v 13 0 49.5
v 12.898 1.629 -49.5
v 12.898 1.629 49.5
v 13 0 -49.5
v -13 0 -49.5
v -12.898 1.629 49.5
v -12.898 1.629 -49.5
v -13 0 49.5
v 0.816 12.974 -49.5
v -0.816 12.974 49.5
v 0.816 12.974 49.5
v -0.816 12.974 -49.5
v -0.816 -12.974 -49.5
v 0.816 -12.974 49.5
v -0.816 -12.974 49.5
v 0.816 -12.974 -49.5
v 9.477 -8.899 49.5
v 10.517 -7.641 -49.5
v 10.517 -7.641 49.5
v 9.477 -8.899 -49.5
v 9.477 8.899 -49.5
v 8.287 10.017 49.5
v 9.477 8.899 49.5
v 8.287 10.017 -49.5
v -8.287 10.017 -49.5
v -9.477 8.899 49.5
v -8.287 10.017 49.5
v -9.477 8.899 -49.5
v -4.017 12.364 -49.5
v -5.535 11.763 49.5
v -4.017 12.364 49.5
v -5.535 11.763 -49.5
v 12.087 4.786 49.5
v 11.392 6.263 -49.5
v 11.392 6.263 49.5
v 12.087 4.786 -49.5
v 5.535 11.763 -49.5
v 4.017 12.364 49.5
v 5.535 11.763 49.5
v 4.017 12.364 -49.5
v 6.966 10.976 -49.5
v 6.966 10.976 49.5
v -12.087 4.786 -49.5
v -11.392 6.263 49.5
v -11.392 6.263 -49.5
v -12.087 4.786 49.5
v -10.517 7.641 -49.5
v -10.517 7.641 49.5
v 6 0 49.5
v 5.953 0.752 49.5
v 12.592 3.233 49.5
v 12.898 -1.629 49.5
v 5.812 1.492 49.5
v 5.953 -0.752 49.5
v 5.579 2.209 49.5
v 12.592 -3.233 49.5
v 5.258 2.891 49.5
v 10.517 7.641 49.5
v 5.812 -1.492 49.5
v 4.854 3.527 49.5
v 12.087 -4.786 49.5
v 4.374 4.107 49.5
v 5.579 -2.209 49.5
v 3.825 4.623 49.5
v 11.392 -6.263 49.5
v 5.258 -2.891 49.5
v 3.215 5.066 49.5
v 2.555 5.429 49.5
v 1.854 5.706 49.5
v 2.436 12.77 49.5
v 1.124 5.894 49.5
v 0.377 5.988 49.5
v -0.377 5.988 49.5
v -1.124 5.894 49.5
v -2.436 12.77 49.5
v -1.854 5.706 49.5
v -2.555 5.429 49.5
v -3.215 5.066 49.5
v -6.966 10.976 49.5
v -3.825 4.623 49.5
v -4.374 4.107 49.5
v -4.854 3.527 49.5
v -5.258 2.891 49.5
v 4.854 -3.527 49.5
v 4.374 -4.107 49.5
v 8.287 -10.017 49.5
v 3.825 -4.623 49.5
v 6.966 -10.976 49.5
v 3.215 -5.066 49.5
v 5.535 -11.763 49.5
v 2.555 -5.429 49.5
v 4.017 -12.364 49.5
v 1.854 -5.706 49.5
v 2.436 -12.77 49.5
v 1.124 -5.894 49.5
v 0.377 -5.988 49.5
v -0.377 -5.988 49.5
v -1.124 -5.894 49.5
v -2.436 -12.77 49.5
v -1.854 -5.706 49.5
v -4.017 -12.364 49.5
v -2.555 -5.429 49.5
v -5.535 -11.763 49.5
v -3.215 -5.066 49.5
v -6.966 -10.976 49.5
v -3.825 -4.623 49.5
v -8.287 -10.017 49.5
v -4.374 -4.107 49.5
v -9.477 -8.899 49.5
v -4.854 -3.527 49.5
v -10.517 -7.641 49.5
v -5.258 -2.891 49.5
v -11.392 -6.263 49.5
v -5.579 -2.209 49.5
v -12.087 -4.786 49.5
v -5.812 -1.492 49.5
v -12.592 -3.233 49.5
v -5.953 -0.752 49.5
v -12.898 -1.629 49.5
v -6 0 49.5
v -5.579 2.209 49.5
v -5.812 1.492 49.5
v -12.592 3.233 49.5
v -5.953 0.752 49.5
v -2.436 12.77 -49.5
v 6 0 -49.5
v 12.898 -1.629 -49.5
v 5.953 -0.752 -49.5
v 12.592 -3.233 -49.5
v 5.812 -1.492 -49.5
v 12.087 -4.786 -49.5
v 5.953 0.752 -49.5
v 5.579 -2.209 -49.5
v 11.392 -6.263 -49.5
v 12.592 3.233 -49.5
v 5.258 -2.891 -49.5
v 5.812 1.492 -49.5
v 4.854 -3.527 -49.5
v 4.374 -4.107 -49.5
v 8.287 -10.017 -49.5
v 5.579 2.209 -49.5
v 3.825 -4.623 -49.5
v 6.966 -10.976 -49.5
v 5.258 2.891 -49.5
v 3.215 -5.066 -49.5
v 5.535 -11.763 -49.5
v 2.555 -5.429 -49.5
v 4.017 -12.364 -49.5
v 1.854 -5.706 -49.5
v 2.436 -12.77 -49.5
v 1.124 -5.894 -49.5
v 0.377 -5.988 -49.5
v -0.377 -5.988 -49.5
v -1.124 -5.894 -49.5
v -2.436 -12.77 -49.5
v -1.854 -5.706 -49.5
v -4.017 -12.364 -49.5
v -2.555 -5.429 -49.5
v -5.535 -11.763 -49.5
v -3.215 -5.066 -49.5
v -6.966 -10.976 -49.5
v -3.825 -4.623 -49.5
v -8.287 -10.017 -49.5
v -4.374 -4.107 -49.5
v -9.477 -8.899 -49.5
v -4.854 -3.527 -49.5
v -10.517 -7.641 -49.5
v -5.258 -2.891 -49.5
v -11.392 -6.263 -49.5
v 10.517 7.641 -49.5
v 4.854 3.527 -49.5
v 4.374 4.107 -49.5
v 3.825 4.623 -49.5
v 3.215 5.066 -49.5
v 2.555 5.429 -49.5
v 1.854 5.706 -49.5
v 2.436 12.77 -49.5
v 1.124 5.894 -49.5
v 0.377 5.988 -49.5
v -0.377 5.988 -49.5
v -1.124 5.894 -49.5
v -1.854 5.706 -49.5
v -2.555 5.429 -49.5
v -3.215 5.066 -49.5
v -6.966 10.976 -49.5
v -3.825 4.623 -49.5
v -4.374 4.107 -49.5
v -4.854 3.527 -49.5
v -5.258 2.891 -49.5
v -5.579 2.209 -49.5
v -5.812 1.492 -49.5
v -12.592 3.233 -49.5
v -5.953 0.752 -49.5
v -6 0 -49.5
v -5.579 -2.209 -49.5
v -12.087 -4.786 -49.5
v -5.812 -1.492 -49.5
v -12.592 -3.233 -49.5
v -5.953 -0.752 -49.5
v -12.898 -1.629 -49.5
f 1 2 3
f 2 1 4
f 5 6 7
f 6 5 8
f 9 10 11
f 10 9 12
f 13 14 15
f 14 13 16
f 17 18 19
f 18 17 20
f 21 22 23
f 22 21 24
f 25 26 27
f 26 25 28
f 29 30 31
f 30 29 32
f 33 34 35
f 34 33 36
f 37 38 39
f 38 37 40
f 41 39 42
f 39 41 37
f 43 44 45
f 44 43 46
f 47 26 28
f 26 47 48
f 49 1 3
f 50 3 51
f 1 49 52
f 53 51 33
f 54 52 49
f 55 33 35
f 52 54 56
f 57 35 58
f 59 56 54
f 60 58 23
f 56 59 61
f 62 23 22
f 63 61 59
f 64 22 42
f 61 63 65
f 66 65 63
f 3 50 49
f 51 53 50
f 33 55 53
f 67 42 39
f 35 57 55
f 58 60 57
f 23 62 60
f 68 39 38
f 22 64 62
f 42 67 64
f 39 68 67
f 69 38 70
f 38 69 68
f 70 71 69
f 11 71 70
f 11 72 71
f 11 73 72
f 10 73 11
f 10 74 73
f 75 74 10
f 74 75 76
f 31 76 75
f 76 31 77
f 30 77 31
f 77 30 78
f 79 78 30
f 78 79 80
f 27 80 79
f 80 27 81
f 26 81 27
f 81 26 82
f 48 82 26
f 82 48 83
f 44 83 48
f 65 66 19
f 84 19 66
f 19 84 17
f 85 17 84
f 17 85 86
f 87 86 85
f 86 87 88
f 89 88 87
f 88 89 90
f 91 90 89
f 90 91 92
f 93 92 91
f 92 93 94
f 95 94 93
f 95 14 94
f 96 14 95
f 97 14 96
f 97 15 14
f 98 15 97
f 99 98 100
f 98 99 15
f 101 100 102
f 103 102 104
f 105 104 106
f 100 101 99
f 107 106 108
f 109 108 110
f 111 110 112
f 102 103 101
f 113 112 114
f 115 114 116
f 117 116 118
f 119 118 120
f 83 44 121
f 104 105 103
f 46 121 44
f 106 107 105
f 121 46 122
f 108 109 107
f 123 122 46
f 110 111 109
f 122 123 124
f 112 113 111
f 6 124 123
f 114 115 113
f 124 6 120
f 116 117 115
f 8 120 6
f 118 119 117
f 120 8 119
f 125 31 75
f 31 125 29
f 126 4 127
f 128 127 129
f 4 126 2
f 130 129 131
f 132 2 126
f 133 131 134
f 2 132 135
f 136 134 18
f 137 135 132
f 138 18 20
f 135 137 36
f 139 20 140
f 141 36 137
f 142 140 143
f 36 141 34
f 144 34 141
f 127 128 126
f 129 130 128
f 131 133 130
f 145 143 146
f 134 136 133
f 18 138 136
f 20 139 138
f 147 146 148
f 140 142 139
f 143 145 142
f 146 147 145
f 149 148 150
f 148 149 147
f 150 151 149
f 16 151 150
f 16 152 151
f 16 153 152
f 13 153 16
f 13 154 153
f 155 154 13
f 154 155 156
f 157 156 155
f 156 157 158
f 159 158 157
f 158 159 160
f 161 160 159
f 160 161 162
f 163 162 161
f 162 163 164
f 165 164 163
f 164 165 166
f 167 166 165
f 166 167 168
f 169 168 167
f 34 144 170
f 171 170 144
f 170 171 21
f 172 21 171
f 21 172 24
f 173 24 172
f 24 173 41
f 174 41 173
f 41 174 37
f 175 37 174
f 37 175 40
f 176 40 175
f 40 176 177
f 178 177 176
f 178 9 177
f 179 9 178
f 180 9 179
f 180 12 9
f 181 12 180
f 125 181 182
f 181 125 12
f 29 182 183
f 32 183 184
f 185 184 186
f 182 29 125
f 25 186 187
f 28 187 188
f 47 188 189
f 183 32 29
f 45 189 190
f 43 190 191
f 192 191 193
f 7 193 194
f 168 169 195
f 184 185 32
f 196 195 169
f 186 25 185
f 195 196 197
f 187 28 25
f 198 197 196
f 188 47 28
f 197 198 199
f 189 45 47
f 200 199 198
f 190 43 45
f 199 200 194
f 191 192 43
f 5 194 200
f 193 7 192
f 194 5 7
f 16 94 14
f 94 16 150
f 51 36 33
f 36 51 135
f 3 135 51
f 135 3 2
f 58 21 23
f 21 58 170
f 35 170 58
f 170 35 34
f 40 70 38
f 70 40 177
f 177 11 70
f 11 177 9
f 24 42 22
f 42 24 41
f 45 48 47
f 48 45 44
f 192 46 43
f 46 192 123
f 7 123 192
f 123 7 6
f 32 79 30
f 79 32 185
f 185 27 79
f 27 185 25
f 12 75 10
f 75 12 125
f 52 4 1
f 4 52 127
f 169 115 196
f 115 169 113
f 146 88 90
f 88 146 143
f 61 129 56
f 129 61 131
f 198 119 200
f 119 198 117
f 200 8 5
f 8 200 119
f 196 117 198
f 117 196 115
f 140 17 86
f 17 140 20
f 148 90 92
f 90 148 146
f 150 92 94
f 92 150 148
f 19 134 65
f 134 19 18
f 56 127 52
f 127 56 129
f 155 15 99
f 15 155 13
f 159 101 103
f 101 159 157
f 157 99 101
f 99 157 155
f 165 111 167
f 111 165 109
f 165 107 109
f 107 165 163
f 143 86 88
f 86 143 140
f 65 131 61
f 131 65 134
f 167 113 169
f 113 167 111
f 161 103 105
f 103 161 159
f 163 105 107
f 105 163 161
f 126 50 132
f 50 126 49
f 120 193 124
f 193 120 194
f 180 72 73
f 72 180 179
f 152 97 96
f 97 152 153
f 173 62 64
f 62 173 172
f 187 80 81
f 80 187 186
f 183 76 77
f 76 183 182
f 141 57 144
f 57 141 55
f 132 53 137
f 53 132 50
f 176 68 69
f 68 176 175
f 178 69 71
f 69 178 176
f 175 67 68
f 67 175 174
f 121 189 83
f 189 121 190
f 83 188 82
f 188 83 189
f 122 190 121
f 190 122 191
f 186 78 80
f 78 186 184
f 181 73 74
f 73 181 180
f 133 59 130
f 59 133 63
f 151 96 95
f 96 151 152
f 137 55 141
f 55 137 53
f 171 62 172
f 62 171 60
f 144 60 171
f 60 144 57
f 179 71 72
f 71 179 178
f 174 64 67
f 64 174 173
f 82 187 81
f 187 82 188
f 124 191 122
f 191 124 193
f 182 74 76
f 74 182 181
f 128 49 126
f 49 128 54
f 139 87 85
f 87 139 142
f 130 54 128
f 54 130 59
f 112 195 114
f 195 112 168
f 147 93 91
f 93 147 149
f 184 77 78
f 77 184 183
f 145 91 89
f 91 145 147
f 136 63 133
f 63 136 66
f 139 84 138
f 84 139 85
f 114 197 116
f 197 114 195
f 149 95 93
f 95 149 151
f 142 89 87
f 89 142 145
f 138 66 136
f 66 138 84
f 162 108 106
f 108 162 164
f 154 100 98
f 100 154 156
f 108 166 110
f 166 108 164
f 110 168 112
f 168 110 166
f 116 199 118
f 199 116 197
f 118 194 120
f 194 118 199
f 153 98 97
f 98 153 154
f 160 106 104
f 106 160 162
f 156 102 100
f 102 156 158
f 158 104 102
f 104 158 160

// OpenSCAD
$fn = 50;


difference() {
	union() {
		translate(v = [0, 0, -49.5000000000]) {
			cylinder(h = 99, r = 13.0000000000);
		}
	}
	union() {
		translate(v = [0, 0, -100.0000000000]) {
			cylinder(h = 200, r = 6);
		}
	}
}
